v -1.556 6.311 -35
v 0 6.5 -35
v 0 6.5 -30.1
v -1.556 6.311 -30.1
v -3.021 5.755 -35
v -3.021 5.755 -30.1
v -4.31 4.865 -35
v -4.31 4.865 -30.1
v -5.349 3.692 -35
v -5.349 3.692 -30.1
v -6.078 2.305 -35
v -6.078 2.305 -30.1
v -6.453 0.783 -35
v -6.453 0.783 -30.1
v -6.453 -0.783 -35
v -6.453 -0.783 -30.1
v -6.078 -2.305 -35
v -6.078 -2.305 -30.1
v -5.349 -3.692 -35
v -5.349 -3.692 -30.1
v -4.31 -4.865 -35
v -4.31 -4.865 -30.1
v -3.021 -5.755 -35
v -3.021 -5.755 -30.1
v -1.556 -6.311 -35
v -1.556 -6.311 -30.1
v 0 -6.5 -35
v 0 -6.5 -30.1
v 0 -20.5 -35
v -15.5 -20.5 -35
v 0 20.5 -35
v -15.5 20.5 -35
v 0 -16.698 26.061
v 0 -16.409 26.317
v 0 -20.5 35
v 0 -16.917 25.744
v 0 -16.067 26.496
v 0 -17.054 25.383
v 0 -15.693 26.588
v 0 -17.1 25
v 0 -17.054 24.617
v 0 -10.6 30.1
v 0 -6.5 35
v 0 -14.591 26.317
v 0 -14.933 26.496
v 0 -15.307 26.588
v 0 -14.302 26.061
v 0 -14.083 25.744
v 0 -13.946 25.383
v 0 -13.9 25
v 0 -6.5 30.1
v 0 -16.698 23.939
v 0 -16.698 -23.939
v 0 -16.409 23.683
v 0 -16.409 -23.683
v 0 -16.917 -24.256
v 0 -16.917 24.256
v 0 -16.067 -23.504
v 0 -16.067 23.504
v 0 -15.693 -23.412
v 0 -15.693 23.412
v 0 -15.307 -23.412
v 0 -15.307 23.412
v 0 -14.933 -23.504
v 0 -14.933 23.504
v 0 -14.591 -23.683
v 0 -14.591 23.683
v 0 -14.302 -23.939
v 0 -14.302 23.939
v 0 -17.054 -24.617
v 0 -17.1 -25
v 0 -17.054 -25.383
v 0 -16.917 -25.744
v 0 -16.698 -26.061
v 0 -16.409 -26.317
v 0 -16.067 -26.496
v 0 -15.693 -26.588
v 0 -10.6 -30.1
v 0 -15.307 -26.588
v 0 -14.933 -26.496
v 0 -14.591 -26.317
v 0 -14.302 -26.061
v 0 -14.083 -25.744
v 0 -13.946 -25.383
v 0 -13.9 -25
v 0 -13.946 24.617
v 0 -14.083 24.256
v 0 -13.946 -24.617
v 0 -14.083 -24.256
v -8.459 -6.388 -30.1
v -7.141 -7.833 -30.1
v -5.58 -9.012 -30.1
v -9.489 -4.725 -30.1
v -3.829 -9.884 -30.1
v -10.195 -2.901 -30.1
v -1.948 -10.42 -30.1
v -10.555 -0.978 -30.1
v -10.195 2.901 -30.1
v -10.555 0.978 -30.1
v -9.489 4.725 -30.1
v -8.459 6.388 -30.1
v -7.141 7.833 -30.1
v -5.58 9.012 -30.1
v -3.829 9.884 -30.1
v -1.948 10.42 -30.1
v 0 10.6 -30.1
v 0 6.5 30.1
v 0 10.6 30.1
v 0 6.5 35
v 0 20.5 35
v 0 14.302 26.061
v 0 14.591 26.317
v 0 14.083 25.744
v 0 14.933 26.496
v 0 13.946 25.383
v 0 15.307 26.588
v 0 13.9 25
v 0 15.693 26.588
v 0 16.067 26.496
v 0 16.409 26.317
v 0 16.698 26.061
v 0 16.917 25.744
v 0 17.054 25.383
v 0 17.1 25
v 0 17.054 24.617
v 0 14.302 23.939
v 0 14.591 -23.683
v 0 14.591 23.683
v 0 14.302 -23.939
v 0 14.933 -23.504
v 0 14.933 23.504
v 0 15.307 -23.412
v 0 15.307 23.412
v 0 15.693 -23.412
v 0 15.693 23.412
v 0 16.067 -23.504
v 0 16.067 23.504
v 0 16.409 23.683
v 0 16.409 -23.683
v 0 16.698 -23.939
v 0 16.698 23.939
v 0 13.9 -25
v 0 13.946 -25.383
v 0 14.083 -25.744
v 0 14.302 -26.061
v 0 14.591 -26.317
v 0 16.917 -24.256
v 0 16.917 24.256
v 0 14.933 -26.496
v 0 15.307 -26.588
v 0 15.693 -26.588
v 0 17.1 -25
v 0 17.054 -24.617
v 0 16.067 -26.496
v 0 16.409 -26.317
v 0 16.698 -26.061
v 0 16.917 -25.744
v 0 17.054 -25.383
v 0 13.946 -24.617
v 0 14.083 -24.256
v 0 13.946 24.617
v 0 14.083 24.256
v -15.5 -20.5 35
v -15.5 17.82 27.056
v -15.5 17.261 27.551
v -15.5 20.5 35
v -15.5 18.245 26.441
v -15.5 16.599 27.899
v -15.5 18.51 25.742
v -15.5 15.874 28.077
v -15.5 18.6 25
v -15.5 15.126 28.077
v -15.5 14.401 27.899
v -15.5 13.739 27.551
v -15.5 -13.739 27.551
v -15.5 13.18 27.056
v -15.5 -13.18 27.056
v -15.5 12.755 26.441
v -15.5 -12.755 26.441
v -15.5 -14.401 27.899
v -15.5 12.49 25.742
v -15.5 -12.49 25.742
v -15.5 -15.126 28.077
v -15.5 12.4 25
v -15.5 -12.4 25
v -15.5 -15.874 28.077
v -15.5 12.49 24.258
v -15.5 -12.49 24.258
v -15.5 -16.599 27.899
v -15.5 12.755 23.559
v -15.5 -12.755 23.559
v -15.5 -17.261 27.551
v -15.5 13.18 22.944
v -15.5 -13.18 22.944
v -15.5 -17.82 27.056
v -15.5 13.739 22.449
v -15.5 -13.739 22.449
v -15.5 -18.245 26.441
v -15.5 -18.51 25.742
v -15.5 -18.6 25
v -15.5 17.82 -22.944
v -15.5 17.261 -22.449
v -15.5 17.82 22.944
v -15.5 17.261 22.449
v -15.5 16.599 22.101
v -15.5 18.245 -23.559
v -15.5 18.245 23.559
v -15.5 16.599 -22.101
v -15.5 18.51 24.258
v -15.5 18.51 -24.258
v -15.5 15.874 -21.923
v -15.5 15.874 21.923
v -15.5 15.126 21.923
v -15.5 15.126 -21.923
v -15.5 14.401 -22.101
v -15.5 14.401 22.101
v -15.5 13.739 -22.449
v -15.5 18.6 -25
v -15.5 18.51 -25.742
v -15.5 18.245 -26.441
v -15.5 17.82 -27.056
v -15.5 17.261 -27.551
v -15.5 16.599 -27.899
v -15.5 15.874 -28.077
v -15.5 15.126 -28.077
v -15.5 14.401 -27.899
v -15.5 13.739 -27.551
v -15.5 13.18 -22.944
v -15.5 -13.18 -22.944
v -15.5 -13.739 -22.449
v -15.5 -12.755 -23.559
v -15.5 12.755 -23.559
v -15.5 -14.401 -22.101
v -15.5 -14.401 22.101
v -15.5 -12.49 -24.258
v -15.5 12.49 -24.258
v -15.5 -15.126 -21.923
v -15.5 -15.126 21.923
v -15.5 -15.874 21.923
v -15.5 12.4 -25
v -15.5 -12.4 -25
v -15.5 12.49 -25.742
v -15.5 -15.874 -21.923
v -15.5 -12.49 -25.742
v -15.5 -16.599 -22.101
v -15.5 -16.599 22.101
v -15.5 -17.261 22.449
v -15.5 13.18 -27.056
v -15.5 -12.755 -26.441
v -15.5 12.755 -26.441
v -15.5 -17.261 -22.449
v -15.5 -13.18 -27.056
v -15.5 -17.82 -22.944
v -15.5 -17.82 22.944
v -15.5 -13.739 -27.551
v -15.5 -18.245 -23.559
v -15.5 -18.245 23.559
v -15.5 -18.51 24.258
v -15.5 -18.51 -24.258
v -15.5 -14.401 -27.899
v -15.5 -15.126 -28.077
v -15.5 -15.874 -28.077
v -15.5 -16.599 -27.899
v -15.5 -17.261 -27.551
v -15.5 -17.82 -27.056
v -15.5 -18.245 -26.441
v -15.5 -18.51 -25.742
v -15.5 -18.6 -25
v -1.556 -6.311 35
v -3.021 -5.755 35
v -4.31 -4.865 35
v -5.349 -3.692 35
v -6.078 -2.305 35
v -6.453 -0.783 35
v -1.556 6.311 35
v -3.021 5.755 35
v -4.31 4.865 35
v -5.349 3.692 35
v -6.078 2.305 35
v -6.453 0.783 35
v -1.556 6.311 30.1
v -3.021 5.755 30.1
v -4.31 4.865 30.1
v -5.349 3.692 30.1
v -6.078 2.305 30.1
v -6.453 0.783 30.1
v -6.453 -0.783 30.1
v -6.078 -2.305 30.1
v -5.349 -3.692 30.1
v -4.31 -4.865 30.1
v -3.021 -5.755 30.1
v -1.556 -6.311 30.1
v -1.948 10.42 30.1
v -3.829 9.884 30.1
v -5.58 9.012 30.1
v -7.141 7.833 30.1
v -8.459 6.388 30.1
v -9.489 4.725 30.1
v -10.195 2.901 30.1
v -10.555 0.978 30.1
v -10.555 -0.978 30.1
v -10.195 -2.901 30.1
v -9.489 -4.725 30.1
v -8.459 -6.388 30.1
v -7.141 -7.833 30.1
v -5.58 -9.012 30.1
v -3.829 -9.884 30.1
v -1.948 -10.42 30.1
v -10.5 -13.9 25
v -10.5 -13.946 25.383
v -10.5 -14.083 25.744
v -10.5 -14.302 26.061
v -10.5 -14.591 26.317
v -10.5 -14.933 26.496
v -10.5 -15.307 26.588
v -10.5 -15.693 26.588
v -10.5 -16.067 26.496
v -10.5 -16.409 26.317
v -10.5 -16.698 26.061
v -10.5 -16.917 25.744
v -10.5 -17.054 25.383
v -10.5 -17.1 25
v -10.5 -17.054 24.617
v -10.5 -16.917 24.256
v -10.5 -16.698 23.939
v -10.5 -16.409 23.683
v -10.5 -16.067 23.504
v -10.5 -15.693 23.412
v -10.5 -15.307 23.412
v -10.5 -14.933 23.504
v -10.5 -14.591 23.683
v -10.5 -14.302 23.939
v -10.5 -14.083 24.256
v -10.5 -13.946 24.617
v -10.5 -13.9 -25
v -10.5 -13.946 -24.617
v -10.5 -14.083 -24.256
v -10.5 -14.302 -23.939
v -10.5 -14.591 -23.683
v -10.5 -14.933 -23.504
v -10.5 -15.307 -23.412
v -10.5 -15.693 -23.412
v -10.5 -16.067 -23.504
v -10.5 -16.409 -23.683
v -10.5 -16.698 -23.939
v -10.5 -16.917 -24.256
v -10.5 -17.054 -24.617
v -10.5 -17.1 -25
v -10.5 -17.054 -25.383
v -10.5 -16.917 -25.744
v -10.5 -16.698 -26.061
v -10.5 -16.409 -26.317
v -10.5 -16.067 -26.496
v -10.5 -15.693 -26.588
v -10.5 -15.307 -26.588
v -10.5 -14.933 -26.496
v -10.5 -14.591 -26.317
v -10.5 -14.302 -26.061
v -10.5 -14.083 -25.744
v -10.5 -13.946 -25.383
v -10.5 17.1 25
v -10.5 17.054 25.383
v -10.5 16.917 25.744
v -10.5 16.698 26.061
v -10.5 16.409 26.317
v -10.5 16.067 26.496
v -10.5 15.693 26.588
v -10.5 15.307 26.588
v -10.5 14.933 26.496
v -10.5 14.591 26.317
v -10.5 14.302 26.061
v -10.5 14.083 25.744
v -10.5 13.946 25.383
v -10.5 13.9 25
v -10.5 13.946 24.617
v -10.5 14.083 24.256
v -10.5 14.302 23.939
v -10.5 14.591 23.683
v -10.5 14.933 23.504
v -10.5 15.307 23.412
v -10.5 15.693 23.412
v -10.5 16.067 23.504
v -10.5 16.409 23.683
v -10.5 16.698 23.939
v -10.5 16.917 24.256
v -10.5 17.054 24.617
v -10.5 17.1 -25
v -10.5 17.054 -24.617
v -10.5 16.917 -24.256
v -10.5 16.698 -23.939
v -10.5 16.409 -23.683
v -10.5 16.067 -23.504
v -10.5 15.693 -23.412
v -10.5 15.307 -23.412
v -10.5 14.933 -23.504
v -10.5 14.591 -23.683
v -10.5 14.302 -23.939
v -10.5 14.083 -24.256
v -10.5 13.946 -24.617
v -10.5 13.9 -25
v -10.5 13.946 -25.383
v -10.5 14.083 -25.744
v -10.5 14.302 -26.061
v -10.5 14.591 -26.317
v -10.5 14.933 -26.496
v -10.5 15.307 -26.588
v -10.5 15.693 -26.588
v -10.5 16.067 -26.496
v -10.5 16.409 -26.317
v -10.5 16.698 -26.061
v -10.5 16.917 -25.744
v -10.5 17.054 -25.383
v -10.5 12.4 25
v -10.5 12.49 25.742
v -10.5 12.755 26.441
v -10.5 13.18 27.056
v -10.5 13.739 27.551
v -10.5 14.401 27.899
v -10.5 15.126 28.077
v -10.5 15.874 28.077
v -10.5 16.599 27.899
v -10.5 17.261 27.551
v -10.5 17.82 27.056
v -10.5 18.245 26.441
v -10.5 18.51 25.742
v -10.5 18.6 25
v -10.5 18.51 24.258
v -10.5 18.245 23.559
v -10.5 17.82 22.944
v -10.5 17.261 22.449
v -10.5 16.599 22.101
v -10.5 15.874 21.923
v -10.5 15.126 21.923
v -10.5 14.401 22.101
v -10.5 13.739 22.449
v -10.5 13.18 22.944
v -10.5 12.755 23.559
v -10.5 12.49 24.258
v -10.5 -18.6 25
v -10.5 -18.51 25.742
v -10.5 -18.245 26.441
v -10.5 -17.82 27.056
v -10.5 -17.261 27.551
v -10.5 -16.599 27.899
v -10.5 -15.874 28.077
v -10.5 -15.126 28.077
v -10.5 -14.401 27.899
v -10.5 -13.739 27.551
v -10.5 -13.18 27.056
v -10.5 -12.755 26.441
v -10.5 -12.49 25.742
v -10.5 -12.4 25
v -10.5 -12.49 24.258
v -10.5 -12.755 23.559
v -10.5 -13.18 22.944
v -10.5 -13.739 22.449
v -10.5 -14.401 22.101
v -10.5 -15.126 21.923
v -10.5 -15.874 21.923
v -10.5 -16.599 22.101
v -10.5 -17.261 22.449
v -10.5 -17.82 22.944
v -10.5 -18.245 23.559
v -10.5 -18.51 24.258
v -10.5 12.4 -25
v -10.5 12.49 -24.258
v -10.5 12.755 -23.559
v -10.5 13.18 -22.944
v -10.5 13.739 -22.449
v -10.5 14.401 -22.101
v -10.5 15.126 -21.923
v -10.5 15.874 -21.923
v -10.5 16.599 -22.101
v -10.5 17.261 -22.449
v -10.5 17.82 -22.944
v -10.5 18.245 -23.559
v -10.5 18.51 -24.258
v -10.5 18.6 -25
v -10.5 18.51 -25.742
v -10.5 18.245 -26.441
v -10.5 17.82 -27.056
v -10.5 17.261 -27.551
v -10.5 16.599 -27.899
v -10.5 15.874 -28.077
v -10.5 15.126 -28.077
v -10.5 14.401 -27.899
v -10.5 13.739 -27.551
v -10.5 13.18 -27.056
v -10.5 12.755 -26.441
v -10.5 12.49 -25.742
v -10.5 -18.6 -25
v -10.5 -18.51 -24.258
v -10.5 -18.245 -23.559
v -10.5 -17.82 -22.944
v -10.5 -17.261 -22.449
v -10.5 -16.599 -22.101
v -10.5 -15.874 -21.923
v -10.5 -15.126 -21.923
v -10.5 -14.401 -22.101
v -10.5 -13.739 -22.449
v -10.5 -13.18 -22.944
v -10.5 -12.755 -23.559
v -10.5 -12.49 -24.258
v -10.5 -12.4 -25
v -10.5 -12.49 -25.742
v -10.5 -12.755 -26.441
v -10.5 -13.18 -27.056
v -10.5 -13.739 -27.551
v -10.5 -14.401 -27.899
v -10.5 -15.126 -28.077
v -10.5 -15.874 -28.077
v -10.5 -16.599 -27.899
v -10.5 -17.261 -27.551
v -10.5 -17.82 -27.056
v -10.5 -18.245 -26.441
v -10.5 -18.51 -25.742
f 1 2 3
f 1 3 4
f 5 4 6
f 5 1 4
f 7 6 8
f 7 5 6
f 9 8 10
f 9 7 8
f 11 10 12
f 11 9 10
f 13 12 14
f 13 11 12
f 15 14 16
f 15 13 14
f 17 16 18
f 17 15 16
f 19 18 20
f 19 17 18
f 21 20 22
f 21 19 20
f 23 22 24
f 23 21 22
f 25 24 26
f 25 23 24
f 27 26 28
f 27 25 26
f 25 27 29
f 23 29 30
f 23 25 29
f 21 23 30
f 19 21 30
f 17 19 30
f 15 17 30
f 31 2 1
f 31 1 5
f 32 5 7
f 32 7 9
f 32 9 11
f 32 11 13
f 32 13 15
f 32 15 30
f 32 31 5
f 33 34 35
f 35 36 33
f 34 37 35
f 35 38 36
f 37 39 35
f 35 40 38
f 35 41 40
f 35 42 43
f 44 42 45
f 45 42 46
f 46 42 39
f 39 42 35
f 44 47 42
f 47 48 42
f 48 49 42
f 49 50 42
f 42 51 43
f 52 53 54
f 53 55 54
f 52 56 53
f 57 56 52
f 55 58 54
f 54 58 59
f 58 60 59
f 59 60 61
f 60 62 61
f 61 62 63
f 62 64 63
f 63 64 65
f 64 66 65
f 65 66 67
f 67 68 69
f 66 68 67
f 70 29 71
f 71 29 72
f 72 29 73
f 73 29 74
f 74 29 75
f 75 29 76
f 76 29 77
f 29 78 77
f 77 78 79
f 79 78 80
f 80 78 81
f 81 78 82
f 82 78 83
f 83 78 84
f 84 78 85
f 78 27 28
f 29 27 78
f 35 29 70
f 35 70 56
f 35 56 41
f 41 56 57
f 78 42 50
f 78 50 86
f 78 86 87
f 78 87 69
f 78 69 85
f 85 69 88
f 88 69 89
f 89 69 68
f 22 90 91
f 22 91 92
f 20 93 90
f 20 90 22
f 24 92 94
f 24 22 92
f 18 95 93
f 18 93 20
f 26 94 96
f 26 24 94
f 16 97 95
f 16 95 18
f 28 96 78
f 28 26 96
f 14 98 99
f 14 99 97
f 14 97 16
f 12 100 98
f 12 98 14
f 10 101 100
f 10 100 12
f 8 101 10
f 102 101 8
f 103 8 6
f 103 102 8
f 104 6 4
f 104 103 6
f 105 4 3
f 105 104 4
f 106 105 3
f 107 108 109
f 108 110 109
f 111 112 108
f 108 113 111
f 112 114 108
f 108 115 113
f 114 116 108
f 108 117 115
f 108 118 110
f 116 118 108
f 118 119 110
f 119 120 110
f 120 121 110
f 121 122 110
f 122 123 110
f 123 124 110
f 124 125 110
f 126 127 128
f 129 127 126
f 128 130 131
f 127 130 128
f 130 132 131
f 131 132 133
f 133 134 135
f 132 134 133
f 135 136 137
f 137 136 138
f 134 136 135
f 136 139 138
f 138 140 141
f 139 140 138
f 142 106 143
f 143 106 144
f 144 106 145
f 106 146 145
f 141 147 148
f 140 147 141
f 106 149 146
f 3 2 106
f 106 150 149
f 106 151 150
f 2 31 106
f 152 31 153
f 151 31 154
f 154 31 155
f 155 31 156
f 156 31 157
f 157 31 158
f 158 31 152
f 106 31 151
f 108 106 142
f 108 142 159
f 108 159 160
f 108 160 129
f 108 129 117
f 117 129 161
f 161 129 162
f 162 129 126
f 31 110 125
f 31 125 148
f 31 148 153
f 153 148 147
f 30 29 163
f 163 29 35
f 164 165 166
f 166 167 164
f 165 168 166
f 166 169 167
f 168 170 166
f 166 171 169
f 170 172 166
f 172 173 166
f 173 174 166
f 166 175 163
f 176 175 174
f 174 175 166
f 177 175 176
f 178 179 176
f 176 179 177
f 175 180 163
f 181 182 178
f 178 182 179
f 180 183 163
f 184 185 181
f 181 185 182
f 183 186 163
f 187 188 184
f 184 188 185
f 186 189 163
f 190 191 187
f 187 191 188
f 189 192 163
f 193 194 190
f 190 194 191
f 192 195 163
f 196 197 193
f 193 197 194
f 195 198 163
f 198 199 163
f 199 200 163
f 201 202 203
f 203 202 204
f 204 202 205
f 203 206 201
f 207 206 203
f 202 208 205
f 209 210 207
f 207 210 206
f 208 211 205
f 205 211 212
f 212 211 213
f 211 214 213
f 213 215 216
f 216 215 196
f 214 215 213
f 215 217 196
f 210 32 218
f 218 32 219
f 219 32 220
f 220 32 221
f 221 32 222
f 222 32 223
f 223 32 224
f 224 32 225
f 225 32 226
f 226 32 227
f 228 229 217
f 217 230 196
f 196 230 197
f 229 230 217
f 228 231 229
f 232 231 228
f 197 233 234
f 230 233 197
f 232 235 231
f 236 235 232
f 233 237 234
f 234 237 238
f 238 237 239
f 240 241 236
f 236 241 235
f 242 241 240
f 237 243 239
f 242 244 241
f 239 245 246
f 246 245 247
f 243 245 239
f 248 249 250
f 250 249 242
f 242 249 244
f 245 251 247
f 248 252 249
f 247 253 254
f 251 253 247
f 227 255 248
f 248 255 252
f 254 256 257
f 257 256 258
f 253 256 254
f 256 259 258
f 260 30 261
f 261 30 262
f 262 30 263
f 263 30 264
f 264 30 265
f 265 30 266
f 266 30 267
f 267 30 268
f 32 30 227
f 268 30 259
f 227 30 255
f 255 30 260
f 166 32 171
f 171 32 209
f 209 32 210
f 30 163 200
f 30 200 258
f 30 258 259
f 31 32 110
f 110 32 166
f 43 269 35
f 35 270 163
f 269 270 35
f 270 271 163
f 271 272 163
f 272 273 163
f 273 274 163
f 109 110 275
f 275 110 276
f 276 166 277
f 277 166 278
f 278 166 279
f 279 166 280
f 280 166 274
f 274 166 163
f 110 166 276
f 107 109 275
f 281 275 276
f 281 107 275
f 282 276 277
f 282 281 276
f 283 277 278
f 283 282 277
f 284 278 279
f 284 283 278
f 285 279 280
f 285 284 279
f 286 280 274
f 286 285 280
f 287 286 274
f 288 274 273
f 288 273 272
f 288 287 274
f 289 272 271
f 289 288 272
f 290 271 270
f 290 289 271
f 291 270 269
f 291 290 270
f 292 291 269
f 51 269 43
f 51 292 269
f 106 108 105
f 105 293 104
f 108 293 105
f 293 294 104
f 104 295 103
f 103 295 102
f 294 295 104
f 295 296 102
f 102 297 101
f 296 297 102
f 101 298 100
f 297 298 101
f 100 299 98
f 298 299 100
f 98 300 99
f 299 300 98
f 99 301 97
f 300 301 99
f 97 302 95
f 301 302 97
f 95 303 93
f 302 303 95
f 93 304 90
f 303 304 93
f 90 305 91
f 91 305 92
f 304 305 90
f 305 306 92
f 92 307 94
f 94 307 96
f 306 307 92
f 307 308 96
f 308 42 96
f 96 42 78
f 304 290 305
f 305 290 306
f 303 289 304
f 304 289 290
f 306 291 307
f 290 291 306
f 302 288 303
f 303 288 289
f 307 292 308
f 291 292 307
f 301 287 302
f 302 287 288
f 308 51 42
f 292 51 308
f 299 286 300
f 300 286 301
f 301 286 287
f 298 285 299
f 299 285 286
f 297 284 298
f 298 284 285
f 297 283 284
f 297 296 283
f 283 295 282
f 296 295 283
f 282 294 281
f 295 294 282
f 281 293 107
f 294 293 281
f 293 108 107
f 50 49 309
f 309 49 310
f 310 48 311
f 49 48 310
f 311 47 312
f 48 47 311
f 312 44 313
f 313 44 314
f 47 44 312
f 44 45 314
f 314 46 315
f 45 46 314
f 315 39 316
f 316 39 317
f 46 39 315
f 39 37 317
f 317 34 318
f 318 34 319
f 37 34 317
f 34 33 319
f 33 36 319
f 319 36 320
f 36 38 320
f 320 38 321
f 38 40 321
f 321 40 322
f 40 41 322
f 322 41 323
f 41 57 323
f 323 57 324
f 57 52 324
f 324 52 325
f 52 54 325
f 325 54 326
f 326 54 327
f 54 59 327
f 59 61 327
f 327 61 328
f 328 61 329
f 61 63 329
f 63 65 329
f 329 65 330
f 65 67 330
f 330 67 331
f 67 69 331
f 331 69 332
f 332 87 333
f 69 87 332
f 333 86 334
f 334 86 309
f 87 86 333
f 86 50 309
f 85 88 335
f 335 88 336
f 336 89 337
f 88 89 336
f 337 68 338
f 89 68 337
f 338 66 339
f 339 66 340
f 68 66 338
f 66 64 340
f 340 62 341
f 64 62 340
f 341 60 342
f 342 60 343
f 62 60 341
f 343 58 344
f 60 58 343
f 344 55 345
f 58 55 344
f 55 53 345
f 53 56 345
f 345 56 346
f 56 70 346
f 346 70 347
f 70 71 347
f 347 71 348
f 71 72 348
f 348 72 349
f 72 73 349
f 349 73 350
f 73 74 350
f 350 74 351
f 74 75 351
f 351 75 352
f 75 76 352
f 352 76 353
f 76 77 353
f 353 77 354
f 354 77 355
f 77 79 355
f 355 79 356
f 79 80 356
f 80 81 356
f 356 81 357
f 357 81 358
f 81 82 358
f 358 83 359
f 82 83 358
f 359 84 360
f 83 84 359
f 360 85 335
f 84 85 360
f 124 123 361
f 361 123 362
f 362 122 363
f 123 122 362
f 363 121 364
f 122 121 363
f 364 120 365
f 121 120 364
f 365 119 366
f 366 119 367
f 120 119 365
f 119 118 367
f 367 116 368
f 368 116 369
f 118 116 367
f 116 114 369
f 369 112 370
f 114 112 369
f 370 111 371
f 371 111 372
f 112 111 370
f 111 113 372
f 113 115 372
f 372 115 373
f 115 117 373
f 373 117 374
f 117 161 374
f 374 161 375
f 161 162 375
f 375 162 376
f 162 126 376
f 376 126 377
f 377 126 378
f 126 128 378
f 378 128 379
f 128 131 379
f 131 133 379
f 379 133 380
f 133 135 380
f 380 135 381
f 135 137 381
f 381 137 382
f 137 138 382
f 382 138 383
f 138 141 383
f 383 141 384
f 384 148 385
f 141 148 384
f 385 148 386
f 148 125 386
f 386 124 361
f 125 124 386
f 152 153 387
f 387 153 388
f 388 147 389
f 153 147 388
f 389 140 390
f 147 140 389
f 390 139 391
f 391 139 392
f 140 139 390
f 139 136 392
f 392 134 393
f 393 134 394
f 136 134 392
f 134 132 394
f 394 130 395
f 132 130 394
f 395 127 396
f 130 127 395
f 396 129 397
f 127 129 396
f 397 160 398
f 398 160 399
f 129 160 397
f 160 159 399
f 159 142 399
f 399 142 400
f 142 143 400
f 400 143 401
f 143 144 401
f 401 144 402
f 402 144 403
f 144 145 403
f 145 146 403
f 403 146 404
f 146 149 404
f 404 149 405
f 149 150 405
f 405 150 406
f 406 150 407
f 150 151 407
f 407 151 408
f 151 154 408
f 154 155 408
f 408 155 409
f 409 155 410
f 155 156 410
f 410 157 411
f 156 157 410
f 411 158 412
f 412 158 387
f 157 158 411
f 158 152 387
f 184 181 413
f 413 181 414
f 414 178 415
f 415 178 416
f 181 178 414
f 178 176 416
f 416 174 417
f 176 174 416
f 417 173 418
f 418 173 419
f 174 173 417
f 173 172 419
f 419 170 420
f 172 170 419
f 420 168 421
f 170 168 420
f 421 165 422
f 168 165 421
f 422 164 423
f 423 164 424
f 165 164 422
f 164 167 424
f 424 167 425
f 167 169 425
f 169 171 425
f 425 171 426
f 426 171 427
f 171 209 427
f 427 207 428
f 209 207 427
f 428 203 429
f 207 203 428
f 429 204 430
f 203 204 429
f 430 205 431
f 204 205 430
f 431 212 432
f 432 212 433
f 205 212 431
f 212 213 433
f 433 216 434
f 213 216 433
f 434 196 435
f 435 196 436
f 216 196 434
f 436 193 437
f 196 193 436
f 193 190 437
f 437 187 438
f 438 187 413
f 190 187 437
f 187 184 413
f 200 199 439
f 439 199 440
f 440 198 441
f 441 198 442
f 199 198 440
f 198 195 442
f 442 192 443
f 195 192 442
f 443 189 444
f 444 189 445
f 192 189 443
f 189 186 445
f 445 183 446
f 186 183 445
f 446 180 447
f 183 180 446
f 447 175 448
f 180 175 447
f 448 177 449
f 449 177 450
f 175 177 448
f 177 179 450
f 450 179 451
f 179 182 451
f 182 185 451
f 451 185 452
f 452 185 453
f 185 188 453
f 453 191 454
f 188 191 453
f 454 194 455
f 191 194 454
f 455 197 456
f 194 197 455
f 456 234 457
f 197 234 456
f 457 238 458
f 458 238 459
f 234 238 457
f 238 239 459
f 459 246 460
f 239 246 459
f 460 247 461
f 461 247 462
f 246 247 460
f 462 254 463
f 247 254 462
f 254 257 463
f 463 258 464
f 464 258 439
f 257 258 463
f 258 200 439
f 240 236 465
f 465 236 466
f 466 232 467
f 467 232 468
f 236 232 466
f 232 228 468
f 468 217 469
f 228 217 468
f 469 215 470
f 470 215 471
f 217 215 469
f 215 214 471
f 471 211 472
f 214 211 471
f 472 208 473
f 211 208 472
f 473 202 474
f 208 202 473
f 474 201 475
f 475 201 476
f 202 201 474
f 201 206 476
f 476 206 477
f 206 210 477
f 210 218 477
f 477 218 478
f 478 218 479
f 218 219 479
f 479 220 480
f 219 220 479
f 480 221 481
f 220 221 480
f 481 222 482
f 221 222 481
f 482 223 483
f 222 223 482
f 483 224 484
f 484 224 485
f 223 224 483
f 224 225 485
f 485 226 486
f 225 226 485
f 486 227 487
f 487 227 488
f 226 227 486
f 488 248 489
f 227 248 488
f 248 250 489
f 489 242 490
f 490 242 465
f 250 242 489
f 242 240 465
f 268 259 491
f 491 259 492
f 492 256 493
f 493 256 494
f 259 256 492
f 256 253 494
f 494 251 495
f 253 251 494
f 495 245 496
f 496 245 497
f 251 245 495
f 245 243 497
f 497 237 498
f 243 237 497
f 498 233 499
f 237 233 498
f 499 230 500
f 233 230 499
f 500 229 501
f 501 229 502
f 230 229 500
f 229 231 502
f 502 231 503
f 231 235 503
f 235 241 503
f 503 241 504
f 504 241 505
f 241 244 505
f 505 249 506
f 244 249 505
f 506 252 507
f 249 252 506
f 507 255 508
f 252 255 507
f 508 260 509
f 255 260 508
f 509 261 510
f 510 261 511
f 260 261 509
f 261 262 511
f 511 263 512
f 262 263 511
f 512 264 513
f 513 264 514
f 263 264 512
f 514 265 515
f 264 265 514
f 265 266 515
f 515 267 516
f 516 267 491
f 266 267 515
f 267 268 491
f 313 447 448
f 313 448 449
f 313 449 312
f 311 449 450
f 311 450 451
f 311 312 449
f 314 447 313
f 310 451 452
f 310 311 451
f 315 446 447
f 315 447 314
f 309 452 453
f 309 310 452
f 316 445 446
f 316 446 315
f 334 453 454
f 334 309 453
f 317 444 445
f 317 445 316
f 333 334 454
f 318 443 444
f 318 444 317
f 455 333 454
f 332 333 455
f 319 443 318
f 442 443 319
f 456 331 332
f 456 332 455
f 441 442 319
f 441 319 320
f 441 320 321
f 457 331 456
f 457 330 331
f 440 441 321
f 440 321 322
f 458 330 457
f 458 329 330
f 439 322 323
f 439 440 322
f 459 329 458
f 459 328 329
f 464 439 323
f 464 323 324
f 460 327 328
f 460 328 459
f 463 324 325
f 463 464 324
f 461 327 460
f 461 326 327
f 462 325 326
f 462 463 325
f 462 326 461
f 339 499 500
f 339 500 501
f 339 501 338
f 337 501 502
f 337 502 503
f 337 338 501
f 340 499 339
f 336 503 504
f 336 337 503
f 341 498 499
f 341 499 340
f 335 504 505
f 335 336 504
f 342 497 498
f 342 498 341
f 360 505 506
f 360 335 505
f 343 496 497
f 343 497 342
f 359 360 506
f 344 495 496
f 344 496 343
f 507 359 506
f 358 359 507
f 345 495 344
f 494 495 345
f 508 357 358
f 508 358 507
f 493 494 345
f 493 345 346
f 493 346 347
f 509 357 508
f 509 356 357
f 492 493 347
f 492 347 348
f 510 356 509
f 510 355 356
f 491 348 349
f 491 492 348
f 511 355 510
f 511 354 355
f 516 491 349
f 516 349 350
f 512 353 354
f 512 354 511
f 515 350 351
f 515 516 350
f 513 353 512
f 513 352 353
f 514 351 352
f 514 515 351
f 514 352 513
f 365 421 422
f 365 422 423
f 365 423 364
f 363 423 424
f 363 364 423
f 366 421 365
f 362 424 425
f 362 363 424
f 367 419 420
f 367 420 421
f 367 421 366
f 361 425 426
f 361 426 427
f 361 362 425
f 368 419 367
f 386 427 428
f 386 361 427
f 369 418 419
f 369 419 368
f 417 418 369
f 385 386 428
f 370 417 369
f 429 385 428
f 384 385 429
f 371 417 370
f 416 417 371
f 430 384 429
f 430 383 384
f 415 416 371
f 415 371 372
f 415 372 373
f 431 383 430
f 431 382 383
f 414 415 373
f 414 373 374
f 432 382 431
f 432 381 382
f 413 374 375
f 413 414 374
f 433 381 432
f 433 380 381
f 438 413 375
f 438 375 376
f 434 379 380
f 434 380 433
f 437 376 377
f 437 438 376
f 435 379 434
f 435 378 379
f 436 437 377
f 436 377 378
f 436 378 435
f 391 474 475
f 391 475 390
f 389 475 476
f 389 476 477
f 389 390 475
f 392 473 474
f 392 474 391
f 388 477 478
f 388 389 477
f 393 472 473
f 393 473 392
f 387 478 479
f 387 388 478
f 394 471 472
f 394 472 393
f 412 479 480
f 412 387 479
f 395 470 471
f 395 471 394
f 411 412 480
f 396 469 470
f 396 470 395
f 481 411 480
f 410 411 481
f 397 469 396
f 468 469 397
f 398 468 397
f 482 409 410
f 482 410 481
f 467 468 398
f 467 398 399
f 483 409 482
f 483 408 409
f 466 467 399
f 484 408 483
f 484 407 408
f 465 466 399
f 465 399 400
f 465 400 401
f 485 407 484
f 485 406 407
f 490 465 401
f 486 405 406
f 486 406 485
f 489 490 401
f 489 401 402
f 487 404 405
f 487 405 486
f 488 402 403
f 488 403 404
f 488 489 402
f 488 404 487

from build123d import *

# Parameters (mm, degrees)
PAD_DEPTH       = 35
SKETCH001_R     = 10.6
POCKET_DEPTH    = 30.1
SKETCH002_R     = 1.6
POCKET001_DEPTH = 15.501
SKETCH003_R     = 3.1
POCKET002_DEPTH = 5


with BuildPart() as part:
    # Sketch → Pad (new body, symmetric)
    with BuildSketch(Plane.XY):
        with BuildLine():
            ThreePointArc((0, 6.5), (-6.5, 0), (0, -6.5))
            Line((0, -20.5), (0, -6.5))
            Line((-15.5, -20.5), (0, -20.5))
            Line((-15.5, 20.5), (-15.5, -20.5))
            Line((0, 20.5), (-15.5, 20.5))
            Line((0, 6.5), (0, 20.5))
        make_face()
    extrude(amount=PAD_DEPTH, both=True)

    # Sketch001 → Pocket (cut, symmetric)
    with BuildSketch(Plane.XY):
        Circle(SKETCH001_R)
    extrude(amount=POCKET_DEPTH, both=True, mode=Mode.SUBTRACT)

    # Sketch002 → Pocket001 (cut, through all)
    with BuildSketch(Plane.YZ):
        with Locations((-15.5, 25)):
            Circle(SKETCH002_R)
        with Locations((-15.5, -25)):
            Circle(SKETCH002_R)
        with Locations((15.5, 25)):
            Circle(SKETCH002_R)
        with Locations((15.5, -25)):
            Circle(SKETCH002_R)
    extrude(amount=-POCKET001_DEPTH, mode=Mode.SUBTRACT)

    # Sketch003 (on Face7 of Pocket001) → Pocket002 (cut)
    with BuildSketch(Plane(origin=(-15.5, 0, 0), x_dir=(0, -1, 0), z_dir=(-1, 0, 0))):
        with Locations((-15.5, 25)):
            Circle(SKETCH003_R)
        with Locations((15.5, 25)):
            Circle(SKETCH003_R)
        with Locations((15.5, -25)):
            Circle(SKETCH003_R)
        with Locations((-15.5, -25)):
            Circle(SKETCH003_R)
    extrude(amount=-POCKET002_DEPTH, mode=Mode.SUBTRACT)


solid = part.part
